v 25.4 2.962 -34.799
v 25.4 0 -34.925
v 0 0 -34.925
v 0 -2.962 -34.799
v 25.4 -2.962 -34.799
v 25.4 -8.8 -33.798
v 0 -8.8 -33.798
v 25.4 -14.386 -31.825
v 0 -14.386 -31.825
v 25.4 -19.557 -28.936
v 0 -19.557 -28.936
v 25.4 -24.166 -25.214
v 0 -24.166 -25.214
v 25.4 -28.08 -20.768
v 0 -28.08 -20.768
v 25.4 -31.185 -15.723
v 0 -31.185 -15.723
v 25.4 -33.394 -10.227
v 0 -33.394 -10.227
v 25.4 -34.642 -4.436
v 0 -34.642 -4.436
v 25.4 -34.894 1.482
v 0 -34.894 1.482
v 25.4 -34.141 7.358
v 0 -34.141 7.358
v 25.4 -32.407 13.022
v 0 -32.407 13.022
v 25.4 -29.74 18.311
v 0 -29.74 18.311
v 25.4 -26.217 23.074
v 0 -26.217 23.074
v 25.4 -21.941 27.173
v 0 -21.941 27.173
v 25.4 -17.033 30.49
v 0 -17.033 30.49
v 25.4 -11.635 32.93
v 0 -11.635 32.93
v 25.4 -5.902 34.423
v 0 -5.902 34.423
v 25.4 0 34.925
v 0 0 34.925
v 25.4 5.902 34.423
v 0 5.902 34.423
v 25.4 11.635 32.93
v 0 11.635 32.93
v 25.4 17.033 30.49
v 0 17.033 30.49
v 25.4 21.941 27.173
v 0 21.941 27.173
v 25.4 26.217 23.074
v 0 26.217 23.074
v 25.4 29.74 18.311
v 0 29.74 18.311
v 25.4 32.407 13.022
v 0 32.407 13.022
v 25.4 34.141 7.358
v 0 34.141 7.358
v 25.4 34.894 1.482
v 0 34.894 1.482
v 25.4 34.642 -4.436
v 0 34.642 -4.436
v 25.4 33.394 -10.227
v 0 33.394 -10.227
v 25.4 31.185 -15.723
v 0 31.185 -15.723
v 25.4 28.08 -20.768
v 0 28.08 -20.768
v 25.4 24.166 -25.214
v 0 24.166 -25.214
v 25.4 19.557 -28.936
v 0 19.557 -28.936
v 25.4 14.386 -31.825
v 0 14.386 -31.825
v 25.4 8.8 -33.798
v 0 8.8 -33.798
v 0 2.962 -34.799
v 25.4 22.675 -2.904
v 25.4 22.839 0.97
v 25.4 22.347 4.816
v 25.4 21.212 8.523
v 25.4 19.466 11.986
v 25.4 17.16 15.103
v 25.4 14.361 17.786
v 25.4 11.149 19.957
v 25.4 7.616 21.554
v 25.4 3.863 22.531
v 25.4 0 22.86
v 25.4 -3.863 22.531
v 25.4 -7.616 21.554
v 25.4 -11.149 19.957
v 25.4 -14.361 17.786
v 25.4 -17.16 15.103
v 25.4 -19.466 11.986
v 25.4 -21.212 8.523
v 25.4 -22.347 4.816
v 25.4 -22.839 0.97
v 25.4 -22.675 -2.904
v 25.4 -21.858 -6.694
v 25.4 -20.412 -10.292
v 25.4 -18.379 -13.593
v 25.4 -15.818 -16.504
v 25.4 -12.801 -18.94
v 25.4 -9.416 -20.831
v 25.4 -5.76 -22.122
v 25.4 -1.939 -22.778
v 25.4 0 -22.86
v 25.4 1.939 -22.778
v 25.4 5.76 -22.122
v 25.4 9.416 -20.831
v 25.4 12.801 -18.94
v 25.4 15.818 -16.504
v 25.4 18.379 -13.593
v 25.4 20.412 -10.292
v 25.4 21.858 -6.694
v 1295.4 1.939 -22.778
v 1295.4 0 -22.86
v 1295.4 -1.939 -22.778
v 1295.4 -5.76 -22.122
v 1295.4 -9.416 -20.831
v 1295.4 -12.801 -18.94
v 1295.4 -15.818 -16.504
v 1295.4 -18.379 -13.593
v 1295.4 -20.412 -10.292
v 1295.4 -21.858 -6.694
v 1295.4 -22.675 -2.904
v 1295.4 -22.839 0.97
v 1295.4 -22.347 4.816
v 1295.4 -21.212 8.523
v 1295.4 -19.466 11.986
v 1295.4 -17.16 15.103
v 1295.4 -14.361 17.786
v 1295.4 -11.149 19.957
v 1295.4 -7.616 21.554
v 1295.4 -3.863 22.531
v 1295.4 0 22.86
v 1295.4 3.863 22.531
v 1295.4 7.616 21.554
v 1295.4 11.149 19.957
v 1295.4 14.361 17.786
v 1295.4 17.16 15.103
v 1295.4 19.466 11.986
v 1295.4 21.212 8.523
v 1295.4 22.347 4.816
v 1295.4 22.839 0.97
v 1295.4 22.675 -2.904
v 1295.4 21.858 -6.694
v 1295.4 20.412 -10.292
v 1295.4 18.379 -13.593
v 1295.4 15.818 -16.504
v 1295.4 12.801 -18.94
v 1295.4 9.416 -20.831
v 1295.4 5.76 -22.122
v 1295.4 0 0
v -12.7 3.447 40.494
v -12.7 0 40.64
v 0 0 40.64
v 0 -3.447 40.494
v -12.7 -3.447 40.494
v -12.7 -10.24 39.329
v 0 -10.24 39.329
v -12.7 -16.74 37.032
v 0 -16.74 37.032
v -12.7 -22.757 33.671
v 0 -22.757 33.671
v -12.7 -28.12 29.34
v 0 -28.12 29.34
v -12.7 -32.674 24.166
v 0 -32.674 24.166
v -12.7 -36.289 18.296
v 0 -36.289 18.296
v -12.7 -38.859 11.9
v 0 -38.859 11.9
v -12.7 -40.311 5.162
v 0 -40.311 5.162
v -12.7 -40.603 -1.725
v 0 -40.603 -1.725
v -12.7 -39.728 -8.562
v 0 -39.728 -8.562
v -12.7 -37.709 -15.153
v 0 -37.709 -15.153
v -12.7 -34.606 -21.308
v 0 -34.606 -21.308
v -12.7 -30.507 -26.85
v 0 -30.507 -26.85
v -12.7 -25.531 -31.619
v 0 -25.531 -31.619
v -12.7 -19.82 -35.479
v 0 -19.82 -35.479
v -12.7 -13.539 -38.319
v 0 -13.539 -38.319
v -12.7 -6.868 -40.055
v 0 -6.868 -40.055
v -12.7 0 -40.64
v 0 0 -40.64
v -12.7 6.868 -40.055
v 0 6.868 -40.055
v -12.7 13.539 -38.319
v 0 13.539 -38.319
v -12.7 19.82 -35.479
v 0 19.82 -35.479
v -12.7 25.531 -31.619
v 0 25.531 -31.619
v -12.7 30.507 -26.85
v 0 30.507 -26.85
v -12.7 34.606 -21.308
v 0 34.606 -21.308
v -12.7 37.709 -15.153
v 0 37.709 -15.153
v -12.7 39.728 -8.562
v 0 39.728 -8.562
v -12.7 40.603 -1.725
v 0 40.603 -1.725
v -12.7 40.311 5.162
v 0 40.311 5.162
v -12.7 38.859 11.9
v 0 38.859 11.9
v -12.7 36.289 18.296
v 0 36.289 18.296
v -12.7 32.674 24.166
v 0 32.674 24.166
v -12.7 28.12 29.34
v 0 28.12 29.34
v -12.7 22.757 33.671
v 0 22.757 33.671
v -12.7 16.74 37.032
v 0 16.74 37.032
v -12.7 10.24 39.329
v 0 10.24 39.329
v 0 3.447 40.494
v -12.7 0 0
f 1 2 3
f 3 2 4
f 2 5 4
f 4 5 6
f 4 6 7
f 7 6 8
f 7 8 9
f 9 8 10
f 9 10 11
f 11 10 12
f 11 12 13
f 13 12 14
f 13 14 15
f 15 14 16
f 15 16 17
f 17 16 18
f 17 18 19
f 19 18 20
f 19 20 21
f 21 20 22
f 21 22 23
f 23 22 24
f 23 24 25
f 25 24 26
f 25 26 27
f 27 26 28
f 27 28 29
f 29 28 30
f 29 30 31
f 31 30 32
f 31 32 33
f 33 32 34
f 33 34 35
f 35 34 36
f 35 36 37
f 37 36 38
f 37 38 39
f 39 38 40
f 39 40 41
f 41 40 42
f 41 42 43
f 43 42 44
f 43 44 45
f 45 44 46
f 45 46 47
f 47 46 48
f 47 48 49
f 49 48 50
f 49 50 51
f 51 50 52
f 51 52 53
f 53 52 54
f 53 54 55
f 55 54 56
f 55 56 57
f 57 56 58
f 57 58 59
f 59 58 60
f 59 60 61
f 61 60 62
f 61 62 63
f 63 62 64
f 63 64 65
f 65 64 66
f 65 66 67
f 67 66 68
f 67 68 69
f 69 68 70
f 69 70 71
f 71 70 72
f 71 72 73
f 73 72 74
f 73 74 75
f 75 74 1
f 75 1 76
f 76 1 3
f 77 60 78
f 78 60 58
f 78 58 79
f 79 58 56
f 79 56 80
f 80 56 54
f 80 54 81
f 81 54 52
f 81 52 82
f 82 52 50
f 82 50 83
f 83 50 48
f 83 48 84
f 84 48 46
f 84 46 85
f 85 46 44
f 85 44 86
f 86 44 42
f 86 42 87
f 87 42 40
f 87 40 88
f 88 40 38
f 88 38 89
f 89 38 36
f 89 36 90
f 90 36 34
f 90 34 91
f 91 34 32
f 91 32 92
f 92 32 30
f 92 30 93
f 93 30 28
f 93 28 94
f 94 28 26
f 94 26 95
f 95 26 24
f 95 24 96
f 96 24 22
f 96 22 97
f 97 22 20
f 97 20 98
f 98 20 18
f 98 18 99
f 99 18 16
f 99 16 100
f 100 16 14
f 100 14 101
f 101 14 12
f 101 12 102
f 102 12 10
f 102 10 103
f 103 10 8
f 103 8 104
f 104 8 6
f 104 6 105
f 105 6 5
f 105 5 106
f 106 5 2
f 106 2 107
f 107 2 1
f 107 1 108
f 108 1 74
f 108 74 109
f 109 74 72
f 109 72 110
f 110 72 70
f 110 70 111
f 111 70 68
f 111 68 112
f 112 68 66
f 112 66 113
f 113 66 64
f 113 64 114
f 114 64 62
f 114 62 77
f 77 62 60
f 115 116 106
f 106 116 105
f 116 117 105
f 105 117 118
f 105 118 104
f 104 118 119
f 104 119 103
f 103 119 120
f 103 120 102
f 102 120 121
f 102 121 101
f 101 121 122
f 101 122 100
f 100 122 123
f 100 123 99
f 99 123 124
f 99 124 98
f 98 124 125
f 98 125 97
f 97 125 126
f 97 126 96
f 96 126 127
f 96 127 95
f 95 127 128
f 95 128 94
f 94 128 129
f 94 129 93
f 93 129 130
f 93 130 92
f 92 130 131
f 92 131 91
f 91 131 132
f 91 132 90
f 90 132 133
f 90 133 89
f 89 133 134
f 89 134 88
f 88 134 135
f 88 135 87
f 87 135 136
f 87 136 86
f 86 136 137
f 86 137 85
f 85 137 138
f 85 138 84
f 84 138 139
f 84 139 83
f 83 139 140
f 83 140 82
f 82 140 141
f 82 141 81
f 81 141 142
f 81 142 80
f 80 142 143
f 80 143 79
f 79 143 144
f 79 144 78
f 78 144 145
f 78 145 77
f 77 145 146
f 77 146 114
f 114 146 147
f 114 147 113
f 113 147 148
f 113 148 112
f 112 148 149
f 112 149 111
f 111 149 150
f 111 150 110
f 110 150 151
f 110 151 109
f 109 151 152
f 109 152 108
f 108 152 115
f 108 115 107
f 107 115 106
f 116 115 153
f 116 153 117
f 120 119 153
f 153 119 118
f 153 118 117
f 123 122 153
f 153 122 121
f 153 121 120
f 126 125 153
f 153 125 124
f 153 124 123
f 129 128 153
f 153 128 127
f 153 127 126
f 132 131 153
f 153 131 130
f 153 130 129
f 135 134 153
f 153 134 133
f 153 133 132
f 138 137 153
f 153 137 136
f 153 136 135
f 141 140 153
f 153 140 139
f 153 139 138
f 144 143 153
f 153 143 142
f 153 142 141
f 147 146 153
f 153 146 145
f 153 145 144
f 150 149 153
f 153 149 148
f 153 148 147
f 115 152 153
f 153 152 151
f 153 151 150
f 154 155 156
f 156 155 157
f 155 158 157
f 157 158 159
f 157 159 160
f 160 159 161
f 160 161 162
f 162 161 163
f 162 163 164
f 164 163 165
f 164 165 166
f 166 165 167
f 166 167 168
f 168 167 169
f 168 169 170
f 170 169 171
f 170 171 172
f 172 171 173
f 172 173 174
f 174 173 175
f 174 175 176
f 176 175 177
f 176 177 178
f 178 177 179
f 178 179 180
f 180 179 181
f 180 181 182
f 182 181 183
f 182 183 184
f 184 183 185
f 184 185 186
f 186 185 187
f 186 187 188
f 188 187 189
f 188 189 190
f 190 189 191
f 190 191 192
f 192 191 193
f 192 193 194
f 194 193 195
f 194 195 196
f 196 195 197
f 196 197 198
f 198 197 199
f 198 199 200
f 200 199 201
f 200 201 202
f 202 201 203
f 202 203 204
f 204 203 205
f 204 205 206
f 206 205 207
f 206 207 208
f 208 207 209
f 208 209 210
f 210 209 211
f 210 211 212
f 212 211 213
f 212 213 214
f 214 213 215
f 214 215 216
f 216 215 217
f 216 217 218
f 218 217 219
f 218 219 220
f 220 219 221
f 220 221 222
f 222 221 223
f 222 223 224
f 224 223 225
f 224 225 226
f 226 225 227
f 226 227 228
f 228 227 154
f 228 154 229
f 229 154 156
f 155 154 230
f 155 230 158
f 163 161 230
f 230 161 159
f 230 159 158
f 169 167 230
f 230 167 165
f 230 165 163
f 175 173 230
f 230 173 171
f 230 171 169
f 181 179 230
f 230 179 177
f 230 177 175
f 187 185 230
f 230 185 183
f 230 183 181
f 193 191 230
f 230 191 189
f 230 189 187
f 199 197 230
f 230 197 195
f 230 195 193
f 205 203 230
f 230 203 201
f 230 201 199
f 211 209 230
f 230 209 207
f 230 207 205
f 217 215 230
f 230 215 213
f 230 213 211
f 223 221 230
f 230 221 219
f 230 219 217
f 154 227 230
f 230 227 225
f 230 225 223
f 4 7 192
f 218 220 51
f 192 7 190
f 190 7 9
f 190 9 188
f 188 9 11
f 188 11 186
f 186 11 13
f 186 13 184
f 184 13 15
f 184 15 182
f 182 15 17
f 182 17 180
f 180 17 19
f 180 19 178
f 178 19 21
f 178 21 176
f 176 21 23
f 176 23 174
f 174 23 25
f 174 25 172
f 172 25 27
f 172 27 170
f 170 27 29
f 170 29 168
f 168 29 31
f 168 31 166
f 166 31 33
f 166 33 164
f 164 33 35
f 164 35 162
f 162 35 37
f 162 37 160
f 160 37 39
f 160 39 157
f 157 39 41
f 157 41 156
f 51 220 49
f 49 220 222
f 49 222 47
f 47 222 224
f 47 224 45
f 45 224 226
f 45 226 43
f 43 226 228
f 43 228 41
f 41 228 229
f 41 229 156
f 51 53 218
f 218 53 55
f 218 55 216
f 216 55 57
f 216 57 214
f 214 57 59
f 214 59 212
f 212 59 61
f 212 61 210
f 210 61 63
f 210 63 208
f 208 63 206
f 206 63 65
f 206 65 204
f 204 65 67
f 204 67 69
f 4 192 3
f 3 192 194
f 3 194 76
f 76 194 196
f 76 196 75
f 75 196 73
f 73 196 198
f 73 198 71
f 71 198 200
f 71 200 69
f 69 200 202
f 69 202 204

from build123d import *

# Parameters (mm, degrees)
SKETCH1_R           = 34.925
BOSS_EXTRUDE1_DEPTH = 25.4
SKETCH2_R           = 22.86
BOSS_EXTRUDE2_DEPTH = 1270
SKETCH3_R           = 40.64
BOSS_EXTRUDE3_DEPTH = 12.7


with BuildPart() as part:
    # Sketch1 → Boss-Extrude1 (new body)
    with BuildSketch(Plane(origin=(0, 0, 0), x_dir=(0, 0, -1), z_dir=(1, 0, 0))):
        Circle(SKETCH1_R)
    extrude(amount=BOSS_EXTRUDE1_DEPTH)

    # Sketch2 → Boss-Extrude2 (add)
    with BuildSketch(Plane(origin=(25.4, 0, 0), x_dir=(0, 0, -1), z_dir=(1, 0, 0))):
        Circle(SKETCH2_R)
    extrude(amount=BOSS_EXTRUDE2_DEPTH)

    # Sketch3 → Boss-Extrude3 (add)
    with BuildSketch(Plane.ZY):
        Circle(SKETCH3_R)
    extrude(amount=BOSS_EXTRUDE3_DEPTH)


solid = part.part
